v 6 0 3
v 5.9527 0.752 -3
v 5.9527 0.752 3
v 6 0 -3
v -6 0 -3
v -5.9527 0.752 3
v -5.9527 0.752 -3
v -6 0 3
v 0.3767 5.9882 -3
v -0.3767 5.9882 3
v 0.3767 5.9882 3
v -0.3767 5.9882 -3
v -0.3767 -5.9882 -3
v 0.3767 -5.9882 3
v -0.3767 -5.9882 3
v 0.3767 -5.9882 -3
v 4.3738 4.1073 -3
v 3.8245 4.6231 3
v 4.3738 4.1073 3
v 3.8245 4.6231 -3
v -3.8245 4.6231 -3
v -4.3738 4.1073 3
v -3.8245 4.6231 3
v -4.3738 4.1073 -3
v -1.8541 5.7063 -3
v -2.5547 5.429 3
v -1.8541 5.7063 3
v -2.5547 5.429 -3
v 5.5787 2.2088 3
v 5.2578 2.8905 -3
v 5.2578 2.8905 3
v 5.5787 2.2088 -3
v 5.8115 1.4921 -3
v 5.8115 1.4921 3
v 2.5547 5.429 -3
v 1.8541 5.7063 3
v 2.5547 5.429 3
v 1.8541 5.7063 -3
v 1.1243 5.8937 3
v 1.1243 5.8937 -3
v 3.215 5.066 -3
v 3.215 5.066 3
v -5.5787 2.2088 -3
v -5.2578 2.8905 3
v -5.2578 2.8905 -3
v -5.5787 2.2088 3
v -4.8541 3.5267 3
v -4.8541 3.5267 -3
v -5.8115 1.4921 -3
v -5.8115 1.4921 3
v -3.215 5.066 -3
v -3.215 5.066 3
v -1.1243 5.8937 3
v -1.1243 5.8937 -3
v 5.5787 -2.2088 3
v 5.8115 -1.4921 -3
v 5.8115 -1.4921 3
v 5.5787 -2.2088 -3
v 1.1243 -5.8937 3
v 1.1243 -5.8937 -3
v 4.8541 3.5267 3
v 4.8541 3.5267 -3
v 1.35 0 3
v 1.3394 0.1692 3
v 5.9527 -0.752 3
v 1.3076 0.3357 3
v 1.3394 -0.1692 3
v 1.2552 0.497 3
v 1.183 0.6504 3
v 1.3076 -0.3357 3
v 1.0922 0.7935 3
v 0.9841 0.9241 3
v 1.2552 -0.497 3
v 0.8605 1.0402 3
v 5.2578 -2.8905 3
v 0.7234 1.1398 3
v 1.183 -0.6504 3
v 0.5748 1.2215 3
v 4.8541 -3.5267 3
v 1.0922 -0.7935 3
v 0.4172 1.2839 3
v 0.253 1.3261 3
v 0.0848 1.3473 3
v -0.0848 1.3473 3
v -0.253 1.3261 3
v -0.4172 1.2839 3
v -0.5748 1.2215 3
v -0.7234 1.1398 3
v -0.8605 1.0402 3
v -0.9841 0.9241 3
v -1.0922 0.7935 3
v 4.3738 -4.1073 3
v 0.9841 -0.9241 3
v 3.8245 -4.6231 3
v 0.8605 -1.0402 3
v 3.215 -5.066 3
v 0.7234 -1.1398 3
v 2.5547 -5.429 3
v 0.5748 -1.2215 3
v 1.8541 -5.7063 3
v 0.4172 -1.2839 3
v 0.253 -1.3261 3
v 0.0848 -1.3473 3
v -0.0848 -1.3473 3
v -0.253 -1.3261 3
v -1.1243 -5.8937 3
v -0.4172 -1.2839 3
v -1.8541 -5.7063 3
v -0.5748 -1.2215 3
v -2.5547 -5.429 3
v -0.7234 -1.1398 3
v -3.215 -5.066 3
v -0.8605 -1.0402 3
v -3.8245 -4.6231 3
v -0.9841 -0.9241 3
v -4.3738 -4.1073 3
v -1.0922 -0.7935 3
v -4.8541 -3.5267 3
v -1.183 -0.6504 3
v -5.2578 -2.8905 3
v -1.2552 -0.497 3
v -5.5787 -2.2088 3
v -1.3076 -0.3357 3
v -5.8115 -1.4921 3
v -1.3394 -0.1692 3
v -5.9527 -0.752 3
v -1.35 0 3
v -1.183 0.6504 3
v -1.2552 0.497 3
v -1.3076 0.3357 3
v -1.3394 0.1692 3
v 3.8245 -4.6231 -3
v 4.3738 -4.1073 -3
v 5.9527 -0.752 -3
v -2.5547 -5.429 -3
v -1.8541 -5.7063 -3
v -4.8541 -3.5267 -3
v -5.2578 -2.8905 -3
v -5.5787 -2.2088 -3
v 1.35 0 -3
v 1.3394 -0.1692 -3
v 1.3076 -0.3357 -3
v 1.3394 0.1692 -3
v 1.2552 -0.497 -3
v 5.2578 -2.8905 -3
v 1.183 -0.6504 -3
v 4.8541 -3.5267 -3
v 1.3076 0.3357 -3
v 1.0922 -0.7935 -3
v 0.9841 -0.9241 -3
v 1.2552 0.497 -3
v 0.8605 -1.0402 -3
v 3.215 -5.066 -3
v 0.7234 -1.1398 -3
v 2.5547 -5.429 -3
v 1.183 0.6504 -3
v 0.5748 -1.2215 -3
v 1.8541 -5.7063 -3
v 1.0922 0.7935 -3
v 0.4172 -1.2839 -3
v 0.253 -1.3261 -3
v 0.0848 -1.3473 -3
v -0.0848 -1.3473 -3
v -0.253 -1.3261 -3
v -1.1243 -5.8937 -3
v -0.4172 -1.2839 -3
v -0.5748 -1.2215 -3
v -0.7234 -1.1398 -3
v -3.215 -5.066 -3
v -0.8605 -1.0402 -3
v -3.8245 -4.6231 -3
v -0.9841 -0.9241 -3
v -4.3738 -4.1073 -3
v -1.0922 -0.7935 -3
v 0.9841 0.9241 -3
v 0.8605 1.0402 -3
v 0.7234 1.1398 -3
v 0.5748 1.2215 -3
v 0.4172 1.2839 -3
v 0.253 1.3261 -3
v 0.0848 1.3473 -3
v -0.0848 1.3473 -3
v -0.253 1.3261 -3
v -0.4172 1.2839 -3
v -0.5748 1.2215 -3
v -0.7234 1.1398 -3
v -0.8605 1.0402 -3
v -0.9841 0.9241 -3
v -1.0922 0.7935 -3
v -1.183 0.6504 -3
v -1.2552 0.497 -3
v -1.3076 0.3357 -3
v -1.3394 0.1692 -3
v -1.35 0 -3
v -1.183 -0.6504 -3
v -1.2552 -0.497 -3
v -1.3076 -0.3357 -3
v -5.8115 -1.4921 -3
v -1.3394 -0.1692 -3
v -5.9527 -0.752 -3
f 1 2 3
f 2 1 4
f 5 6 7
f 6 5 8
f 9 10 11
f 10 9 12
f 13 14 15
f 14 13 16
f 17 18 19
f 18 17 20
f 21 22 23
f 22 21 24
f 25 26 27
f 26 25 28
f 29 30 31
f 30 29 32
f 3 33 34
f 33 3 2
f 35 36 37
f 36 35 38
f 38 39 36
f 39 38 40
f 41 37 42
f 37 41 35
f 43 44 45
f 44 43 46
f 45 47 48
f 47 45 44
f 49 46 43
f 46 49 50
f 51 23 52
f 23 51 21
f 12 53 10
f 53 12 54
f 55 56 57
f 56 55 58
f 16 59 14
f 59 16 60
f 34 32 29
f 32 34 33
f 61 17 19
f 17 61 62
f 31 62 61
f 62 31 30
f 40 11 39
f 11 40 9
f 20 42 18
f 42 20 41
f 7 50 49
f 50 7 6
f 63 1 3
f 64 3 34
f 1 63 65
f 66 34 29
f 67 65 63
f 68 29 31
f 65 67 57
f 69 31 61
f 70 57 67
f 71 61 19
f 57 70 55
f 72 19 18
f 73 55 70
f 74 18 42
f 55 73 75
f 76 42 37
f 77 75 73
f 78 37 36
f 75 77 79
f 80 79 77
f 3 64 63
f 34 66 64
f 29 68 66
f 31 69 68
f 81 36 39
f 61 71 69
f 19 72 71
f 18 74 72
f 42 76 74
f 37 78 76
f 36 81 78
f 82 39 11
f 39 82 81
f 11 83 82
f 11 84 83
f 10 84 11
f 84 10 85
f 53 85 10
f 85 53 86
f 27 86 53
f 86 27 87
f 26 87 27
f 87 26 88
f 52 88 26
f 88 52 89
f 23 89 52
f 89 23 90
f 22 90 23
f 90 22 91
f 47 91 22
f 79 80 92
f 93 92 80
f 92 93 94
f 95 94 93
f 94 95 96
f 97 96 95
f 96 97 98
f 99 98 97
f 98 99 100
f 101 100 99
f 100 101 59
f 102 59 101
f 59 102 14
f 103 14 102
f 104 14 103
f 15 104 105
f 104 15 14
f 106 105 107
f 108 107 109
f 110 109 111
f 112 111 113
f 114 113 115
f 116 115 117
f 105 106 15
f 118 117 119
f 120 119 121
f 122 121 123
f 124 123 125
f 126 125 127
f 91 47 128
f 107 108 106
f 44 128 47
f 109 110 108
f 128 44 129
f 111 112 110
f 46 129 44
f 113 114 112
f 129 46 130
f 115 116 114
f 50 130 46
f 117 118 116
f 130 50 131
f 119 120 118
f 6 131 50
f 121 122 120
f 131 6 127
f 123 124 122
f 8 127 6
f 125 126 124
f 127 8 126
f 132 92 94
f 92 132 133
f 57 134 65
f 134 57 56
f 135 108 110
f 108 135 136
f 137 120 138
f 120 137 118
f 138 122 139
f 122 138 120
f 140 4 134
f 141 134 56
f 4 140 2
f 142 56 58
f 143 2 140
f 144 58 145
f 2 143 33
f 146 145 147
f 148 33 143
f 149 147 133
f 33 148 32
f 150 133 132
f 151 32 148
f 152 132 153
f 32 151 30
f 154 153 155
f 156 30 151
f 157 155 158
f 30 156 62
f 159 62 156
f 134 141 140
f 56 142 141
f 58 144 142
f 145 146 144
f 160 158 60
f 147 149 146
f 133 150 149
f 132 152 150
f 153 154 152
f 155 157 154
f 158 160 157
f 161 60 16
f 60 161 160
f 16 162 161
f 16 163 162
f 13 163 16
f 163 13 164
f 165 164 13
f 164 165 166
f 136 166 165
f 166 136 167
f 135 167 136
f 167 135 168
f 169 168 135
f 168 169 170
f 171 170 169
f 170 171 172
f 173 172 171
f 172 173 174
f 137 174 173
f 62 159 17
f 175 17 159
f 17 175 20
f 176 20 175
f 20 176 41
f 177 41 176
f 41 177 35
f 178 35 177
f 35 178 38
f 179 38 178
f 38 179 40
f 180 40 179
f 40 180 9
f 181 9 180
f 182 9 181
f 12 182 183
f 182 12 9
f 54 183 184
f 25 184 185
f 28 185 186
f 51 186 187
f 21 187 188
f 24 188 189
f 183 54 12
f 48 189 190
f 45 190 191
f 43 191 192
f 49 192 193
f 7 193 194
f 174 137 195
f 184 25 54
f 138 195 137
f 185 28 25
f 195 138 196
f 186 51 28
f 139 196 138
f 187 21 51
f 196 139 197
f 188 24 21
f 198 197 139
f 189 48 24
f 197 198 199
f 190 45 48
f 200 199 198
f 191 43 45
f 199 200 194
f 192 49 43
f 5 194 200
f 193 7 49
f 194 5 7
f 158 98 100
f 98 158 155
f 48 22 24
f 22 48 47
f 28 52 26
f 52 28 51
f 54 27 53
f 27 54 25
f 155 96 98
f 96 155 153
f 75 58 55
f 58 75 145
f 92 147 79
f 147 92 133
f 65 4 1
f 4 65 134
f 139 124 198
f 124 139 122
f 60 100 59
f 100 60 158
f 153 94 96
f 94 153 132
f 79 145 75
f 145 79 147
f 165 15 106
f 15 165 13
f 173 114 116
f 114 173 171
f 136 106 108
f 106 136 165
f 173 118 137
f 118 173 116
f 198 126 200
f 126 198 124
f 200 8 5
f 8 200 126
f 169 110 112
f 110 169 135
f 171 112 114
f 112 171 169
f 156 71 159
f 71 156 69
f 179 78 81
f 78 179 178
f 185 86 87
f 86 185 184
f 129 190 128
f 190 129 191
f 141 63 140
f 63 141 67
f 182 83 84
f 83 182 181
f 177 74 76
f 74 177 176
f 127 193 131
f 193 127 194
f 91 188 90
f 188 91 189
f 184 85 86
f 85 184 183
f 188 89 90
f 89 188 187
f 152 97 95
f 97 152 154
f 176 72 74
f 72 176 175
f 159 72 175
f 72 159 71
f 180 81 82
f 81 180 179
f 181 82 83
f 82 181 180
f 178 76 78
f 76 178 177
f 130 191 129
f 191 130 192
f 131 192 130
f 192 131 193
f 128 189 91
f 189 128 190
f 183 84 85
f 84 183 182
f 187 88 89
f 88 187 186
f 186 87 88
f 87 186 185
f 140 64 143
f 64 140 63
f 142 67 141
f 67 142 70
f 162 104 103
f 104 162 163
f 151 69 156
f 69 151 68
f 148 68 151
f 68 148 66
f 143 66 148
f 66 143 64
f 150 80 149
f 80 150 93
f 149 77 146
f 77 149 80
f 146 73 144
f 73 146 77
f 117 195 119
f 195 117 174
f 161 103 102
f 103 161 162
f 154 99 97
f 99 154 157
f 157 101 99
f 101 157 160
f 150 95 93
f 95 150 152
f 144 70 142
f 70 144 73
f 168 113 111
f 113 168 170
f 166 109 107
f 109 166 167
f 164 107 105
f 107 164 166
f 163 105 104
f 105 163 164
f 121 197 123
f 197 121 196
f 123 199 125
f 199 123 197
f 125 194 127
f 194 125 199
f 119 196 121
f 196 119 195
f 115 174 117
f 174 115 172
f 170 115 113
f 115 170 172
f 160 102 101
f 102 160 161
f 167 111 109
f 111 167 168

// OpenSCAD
$fn = 50;


difference() {
	union() {
		translate(v = [0, 0, -3.0000000000]) {
			cylinder(h = 6, r = 6.0000000000);
		}
	}
	union() {
		translate(v = [0, 0, -100.0000000000]) {
			cylinder(h = 200, r = 1.3500000000);
		}
	}
}
